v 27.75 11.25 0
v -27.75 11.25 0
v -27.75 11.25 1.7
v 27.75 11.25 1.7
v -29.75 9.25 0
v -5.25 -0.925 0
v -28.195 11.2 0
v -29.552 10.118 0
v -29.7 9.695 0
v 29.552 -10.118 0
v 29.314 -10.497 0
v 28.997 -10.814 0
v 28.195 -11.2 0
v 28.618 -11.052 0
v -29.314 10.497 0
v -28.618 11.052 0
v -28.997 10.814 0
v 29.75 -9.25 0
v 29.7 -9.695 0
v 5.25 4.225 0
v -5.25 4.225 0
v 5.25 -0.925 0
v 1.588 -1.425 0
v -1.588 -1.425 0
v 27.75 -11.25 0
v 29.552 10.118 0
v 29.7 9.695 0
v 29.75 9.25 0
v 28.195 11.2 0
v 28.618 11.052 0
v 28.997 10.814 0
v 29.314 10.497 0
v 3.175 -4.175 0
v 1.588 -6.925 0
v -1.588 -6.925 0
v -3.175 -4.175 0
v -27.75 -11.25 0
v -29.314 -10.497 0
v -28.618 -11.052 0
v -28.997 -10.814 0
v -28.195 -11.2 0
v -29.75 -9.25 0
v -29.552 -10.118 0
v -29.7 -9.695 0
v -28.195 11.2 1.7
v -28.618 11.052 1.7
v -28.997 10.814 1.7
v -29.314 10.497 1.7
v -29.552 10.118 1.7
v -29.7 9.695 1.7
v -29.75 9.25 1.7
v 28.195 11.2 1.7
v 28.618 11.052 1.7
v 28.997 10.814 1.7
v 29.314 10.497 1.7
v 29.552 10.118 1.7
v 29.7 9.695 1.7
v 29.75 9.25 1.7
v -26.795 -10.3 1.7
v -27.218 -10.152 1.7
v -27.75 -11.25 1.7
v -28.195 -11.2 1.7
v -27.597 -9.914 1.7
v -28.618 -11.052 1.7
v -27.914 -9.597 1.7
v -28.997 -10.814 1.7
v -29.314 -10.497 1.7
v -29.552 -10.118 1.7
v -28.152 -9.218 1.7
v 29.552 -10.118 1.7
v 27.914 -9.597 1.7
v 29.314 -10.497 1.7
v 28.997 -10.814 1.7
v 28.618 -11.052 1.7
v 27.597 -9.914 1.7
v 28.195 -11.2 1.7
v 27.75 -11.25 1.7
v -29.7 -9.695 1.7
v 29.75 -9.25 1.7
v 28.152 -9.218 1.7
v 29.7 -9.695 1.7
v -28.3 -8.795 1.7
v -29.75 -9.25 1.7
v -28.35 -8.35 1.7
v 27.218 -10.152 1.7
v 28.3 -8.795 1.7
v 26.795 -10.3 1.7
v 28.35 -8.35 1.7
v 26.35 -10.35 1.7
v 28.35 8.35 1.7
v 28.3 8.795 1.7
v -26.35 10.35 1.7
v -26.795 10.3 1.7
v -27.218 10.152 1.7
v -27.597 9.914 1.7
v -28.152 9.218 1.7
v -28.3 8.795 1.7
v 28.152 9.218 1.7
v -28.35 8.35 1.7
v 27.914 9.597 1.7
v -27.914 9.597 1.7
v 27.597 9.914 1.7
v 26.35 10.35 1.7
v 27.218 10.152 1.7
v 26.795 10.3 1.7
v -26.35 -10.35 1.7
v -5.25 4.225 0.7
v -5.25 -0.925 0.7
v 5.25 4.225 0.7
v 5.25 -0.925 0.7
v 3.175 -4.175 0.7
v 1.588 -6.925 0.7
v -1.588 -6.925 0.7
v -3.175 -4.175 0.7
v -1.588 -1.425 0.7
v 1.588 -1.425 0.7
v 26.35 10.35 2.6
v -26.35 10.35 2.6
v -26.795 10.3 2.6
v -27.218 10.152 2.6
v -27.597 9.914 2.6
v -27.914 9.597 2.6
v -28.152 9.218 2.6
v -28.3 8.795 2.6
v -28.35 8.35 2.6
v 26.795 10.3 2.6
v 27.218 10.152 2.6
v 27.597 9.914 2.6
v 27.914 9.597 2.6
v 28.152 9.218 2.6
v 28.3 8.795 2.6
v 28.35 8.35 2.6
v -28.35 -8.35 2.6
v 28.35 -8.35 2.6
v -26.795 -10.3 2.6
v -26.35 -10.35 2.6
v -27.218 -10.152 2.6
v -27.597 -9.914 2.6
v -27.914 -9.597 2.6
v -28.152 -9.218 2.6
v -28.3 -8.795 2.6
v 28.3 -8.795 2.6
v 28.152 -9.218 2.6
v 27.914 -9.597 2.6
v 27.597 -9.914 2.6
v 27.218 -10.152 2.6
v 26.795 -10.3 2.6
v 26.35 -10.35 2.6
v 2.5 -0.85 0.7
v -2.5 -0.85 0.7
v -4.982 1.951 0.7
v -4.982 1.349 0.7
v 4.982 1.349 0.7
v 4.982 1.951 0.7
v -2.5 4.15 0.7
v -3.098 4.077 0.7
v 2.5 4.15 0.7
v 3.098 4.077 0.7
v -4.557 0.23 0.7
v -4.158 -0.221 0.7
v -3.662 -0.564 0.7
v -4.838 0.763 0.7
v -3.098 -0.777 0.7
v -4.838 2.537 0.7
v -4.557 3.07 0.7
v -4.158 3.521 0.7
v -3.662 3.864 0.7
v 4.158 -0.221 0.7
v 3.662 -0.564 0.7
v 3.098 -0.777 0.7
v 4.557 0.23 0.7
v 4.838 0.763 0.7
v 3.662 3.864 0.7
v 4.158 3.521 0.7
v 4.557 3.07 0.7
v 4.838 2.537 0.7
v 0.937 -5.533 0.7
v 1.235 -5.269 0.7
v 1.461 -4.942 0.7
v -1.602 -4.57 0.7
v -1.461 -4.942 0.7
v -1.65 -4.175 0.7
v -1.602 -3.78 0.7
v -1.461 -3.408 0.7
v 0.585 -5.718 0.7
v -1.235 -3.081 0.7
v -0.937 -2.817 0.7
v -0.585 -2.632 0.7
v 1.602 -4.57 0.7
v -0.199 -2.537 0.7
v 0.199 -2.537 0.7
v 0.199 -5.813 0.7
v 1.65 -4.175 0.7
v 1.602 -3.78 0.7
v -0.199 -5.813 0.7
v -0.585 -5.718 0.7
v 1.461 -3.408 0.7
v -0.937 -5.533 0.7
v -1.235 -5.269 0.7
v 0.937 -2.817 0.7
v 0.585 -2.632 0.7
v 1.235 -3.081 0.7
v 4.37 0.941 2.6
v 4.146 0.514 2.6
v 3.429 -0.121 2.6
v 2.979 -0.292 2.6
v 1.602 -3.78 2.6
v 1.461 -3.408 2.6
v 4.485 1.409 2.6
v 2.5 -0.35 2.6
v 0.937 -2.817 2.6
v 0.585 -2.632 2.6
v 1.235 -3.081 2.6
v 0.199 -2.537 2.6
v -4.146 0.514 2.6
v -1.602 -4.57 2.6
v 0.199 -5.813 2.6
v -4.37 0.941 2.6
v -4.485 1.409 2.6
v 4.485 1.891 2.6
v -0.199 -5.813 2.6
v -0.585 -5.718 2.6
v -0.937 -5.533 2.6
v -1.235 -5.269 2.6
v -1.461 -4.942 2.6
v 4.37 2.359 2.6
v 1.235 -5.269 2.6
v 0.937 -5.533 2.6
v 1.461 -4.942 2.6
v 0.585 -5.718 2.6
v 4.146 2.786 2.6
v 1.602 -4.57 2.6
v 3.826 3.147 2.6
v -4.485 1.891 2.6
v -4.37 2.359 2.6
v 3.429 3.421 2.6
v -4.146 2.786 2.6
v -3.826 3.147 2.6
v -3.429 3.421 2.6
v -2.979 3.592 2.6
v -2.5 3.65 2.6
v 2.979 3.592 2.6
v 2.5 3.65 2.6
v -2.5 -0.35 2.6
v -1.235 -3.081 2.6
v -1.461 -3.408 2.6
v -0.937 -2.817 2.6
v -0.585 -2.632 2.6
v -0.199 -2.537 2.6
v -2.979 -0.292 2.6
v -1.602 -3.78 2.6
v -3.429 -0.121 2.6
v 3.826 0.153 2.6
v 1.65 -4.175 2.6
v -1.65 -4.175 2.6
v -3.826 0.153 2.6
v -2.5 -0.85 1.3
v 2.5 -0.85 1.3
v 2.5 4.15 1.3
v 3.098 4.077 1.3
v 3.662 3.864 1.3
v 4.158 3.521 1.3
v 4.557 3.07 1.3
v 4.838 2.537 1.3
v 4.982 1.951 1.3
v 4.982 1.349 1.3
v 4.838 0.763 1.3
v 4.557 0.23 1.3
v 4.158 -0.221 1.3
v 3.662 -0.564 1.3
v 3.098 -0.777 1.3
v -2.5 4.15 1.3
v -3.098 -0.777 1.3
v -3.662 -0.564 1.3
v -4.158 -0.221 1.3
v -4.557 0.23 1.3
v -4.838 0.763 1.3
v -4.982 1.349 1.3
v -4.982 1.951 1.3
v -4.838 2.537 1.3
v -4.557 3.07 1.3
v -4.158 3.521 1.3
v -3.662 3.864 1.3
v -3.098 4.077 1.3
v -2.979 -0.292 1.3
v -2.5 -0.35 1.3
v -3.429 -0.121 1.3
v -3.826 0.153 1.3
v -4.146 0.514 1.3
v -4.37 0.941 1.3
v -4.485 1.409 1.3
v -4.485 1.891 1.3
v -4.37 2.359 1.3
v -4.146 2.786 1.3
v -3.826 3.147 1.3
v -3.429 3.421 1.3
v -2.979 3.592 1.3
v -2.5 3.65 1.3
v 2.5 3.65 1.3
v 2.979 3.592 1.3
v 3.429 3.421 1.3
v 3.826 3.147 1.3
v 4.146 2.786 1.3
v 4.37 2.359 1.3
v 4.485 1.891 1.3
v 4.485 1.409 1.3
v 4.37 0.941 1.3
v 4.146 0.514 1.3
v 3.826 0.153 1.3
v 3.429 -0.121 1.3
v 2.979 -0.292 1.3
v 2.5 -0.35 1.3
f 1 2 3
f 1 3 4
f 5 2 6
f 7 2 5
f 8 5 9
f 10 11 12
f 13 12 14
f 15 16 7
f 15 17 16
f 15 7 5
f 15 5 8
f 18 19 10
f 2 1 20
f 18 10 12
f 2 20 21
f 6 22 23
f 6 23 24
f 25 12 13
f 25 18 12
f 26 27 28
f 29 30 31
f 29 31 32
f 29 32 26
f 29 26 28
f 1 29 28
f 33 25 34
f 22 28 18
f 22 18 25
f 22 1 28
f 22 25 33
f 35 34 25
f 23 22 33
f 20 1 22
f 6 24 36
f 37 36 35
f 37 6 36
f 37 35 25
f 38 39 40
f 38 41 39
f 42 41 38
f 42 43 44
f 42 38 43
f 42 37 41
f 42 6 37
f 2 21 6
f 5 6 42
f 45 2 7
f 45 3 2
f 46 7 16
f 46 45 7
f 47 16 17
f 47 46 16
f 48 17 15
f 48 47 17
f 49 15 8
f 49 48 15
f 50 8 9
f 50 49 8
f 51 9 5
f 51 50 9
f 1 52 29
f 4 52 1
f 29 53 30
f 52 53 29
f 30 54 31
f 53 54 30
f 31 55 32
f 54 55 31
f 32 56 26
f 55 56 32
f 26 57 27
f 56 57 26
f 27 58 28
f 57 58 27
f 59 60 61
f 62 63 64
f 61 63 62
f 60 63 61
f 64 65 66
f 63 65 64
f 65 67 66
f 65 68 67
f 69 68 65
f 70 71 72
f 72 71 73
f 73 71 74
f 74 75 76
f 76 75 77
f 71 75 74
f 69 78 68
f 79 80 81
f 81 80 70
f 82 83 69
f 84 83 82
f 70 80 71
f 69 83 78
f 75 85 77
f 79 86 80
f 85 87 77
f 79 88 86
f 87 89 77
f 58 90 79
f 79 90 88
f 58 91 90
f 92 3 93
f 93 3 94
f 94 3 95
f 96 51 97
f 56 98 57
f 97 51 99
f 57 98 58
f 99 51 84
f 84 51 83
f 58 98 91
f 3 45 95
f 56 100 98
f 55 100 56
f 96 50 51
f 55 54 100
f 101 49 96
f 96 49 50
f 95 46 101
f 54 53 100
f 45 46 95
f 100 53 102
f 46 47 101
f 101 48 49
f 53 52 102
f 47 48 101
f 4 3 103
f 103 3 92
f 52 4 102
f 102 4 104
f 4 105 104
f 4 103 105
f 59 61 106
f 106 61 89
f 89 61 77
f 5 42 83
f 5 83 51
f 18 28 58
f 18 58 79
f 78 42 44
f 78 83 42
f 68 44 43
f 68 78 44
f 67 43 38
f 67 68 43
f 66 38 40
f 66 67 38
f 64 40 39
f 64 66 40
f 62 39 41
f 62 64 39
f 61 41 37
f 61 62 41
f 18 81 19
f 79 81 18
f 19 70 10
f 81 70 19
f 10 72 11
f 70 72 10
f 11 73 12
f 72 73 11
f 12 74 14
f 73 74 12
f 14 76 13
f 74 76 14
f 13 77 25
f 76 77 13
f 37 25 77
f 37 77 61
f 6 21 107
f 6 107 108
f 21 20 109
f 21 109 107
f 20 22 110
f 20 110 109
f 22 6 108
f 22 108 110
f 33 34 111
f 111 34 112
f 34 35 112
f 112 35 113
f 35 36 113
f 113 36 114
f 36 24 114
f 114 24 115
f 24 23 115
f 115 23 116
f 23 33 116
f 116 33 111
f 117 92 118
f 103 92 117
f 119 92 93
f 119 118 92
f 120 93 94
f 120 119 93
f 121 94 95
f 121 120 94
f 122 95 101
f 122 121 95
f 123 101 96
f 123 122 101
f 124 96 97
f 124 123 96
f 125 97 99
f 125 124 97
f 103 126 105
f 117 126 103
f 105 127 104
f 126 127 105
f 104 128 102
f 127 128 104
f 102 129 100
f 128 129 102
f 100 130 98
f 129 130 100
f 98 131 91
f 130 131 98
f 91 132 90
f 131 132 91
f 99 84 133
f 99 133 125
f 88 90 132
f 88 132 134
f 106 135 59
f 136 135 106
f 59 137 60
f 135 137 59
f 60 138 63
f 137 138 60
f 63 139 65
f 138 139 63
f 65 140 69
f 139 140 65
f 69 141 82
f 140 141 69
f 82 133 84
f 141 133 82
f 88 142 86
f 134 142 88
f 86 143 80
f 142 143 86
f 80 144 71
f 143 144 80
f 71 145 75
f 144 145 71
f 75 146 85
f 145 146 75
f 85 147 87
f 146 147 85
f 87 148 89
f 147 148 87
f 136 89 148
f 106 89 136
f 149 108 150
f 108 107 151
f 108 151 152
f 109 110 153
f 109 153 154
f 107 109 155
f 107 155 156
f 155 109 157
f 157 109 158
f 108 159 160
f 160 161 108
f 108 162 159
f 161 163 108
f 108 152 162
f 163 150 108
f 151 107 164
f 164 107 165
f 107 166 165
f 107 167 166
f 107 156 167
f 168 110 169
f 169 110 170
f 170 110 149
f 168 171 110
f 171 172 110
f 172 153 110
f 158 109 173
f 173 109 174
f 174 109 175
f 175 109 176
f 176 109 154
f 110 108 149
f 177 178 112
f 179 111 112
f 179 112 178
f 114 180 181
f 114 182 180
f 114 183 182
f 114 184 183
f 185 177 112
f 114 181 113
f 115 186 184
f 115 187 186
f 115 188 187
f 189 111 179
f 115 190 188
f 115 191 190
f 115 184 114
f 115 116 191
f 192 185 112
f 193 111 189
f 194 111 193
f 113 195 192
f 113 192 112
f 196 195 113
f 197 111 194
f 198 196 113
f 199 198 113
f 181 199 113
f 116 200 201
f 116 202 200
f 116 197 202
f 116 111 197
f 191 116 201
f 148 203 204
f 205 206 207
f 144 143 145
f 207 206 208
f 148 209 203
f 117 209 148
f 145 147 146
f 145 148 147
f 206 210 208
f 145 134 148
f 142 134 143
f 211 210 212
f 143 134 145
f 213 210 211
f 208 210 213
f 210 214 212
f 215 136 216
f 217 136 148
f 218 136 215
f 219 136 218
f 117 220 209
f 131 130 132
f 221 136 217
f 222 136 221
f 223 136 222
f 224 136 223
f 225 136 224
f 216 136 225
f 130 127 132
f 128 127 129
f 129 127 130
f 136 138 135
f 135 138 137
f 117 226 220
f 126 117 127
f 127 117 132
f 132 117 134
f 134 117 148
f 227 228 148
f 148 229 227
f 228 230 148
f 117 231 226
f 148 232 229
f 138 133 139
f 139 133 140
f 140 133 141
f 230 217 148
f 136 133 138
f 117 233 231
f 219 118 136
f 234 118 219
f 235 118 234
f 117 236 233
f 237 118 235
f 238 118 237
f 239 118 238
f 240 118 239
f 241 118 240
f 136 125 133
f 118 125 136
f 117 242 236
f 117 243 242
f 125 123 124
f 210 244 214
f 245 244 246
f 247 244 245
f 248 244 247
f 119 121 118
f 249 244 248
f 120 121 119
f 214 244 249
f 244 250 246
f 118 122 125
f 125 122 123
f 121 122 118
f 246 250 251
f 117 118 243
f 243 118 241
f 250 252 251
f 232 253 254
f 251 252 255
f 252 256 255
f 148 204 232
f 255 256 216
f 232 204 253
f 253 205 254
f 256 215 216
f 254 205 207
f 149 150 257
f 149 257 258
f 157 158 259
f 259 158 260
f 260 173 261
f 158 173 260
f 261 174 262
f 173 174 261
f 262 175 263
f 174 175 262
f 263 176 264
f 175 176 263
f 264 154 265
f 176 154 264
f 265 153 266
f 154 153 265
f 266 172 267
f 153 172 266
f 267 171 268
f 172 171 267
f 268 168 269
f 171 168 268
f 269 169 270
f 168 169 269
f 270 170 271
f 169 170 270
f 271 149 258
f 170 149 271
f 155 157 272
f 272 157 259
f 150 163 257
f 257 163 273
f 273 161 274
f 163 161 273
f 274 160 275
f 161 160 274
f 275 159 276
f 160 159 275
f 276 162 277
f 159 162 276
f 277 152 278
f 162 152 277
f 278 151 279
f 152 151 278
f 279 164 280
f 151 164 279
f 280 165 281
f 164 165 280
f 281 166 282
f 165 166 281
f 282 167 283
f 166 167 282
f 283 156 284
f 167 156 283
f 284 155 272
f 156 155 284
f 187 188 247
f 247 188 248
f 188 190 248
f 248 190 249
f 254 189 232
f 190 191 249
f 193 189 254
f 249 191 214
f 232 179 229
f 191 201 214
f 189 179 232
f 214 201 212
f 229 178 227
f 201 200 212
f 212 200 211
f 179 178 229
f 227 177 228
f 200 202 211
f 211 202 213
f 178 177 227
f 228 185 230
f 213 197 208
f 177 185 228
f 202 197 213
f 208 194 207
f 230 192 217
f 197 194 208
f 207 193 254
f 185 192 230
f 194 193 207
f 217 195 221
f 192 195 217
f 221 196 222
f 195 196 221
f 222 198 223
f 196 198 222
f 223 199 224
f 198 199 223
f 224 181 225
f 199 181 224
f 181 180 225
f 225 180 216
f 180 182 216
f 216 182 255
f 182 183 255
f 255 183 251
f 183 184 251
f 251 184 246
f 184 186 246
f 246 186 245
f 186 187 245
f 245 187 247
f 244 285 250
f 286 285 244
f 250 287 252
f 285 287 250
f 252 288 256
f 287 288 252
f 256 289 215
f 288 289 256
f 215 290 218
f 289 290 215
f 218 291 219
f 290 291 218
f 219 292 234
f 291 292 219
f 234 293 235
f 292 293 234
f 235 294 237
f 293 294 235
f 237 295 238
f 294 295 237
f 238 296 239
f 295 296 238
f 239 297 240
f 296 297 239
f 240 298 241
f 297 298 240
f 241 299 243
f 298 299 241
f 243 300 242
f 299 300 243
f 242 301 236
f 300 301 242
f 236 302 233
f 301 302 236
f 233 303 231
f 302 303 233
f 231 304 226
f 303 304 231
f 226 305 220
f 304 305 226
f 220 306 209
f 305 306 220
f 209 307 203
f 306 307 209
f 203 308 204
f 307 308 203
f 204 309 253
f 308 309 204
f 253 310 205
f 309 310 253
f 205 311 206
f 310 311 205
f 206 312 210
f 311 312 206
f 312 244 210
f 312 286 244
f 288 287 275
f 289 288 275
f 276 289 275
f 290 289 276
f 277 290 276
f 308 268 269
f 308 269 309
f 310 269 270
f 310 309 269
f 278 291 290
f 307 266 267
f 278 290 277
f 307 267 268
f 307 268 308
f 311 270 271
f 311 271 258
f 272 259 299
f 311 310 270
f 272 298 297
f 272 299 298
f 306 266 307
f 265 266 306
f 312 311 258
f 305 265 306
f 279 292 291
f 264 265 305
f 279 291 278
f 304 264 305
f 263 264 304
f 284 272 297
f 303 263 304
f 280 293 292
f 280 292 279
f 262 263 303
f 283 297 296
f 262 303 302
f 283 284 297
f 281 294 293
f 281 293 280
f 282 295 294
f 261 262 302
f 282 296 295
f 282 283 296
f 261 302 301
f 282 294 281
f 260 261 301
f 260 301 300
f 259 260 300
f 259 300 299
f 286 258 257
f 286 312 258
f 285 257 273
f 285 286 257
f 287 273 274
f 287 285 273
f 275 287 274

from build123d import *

# Parameters (mm, degrees)
SKETCH_W        = 59.5
SKETCH_H        = 22.5
PAD_DEPTH       = 1.7
SKETCH001_W     = 56.7
SKETCH001_H     = 20.7
PAD001_DEPTH    = 0.9
SKETCH002_W     = 10.5
SKETCH002_H     = 5.15
POCKET_DEPTH    = 0.7
POCKET001_DEPTH = 0.6
SKETCH004_R     = 1.65
POCKET002_DEPTH = 1.901
FILLET_R        = 2


with BuildPart() as part:
    # Sketch → Pad (new body)
    with BuildSketch(Plane.XY):
        Rectangle(SKETCH_W, SKETCH_H)
    extrude(amount=PAD_DEPTH)

    # Sketch001 (on Face6 of Pad) → Pad001 (join)
    with BuildSketch(Plane.XY.offset(1.7)):
        Rectangle(SKETCH001_W, SKETCH001_H)
    extrude(amount=PAD001_DEPTH)

    # Sketch002 (on Face4 of Pad001) → Pocket (cut)
    with BuildSketch(Plane(origin=(0, 0, 0), x_dir=(1, 0, 0), z_dir=(0, 0, -1))):
        Polygon((3.175426, 4.175), (1.587713, 6.925), (-1.587713, 6.925), (-3.175426, 4.175), (-1.587713, 1.425), (1.587713, 1.425), align=None)
        with Locations((0, -1.65)):
            Rectangle(SKETCH002_W, SKETCH002_H)
    extrude(amount=-POCKET_DEPTH, mode=Mode.SUBTRACT)

    # Sketch003 (on Face21 of Pocket) → Pocket001 (cut)
    with BuildSketch(Plane(origin=(0, 0, 0.7), x_dir=(1, 0, 0), z_dir=(0, 0, -1))):
        with BuildLine():
            ThreePointArc((-2.5, 0.85), (-5, -1.65), (-2.5, -4.15))
            Line((-2.5, -4.15), (2.5, -4.15))
            ThreePointArc((2.5, -4.15), (5, -1.65), (2.5, 0.85))
            Line((-2.5, 0.85), (2.5, 0.85))
        make_face()
    extrude(amount=-POCKET001_DEPTH, mode=Mode.SUBTRACT)

    # Sketch004 (on Face22 of Pocket001) → Pocket002 (cut, through all)
    with BuildSketch(Plane(origin=(0, 0, 0.7), x_dir=(1, 0, 0), z_dir=(0, 0, -1))):
        with Locations((0, 4.175)):
            Circle(SKETCH004_R)
        with BuildLine():
            ThreePointArc((-2.5, 0.35), (-4.5, -1.65), (-2.5, -3.65))
            Line((-2.5, -3.65), (2.5, -3.65))
            ThreePointArc((2.5, -3.65), (4.5, -1.65), (2.5, 0.35))
            Line((-2.5, 0.35), (2.5, 0.35))
        make_face()
    extrude(amount=-POCKET002_DEPTH, mode=Mode.SUBTRACT)

    # Fillet
    fillet_edges = [part.edges().sort_by_distance(p)[0] for p in [
        (-29.75, -11.25, 0.85),
        (-28.35, -10.35, 2.15),
        (-29.75, 11.25, 0.85),
        (-28.35, 10.35, 2.15),
        (28.35, -10.35, 2.15),
        (29.75, -11.25, 0.85),
        (28.35, 10.35, 2.15),
        (29.75, 11.25, 0.85),
    ]]
    fillet(fillet_edges, radius=FILLET_R)


solid = part.part
